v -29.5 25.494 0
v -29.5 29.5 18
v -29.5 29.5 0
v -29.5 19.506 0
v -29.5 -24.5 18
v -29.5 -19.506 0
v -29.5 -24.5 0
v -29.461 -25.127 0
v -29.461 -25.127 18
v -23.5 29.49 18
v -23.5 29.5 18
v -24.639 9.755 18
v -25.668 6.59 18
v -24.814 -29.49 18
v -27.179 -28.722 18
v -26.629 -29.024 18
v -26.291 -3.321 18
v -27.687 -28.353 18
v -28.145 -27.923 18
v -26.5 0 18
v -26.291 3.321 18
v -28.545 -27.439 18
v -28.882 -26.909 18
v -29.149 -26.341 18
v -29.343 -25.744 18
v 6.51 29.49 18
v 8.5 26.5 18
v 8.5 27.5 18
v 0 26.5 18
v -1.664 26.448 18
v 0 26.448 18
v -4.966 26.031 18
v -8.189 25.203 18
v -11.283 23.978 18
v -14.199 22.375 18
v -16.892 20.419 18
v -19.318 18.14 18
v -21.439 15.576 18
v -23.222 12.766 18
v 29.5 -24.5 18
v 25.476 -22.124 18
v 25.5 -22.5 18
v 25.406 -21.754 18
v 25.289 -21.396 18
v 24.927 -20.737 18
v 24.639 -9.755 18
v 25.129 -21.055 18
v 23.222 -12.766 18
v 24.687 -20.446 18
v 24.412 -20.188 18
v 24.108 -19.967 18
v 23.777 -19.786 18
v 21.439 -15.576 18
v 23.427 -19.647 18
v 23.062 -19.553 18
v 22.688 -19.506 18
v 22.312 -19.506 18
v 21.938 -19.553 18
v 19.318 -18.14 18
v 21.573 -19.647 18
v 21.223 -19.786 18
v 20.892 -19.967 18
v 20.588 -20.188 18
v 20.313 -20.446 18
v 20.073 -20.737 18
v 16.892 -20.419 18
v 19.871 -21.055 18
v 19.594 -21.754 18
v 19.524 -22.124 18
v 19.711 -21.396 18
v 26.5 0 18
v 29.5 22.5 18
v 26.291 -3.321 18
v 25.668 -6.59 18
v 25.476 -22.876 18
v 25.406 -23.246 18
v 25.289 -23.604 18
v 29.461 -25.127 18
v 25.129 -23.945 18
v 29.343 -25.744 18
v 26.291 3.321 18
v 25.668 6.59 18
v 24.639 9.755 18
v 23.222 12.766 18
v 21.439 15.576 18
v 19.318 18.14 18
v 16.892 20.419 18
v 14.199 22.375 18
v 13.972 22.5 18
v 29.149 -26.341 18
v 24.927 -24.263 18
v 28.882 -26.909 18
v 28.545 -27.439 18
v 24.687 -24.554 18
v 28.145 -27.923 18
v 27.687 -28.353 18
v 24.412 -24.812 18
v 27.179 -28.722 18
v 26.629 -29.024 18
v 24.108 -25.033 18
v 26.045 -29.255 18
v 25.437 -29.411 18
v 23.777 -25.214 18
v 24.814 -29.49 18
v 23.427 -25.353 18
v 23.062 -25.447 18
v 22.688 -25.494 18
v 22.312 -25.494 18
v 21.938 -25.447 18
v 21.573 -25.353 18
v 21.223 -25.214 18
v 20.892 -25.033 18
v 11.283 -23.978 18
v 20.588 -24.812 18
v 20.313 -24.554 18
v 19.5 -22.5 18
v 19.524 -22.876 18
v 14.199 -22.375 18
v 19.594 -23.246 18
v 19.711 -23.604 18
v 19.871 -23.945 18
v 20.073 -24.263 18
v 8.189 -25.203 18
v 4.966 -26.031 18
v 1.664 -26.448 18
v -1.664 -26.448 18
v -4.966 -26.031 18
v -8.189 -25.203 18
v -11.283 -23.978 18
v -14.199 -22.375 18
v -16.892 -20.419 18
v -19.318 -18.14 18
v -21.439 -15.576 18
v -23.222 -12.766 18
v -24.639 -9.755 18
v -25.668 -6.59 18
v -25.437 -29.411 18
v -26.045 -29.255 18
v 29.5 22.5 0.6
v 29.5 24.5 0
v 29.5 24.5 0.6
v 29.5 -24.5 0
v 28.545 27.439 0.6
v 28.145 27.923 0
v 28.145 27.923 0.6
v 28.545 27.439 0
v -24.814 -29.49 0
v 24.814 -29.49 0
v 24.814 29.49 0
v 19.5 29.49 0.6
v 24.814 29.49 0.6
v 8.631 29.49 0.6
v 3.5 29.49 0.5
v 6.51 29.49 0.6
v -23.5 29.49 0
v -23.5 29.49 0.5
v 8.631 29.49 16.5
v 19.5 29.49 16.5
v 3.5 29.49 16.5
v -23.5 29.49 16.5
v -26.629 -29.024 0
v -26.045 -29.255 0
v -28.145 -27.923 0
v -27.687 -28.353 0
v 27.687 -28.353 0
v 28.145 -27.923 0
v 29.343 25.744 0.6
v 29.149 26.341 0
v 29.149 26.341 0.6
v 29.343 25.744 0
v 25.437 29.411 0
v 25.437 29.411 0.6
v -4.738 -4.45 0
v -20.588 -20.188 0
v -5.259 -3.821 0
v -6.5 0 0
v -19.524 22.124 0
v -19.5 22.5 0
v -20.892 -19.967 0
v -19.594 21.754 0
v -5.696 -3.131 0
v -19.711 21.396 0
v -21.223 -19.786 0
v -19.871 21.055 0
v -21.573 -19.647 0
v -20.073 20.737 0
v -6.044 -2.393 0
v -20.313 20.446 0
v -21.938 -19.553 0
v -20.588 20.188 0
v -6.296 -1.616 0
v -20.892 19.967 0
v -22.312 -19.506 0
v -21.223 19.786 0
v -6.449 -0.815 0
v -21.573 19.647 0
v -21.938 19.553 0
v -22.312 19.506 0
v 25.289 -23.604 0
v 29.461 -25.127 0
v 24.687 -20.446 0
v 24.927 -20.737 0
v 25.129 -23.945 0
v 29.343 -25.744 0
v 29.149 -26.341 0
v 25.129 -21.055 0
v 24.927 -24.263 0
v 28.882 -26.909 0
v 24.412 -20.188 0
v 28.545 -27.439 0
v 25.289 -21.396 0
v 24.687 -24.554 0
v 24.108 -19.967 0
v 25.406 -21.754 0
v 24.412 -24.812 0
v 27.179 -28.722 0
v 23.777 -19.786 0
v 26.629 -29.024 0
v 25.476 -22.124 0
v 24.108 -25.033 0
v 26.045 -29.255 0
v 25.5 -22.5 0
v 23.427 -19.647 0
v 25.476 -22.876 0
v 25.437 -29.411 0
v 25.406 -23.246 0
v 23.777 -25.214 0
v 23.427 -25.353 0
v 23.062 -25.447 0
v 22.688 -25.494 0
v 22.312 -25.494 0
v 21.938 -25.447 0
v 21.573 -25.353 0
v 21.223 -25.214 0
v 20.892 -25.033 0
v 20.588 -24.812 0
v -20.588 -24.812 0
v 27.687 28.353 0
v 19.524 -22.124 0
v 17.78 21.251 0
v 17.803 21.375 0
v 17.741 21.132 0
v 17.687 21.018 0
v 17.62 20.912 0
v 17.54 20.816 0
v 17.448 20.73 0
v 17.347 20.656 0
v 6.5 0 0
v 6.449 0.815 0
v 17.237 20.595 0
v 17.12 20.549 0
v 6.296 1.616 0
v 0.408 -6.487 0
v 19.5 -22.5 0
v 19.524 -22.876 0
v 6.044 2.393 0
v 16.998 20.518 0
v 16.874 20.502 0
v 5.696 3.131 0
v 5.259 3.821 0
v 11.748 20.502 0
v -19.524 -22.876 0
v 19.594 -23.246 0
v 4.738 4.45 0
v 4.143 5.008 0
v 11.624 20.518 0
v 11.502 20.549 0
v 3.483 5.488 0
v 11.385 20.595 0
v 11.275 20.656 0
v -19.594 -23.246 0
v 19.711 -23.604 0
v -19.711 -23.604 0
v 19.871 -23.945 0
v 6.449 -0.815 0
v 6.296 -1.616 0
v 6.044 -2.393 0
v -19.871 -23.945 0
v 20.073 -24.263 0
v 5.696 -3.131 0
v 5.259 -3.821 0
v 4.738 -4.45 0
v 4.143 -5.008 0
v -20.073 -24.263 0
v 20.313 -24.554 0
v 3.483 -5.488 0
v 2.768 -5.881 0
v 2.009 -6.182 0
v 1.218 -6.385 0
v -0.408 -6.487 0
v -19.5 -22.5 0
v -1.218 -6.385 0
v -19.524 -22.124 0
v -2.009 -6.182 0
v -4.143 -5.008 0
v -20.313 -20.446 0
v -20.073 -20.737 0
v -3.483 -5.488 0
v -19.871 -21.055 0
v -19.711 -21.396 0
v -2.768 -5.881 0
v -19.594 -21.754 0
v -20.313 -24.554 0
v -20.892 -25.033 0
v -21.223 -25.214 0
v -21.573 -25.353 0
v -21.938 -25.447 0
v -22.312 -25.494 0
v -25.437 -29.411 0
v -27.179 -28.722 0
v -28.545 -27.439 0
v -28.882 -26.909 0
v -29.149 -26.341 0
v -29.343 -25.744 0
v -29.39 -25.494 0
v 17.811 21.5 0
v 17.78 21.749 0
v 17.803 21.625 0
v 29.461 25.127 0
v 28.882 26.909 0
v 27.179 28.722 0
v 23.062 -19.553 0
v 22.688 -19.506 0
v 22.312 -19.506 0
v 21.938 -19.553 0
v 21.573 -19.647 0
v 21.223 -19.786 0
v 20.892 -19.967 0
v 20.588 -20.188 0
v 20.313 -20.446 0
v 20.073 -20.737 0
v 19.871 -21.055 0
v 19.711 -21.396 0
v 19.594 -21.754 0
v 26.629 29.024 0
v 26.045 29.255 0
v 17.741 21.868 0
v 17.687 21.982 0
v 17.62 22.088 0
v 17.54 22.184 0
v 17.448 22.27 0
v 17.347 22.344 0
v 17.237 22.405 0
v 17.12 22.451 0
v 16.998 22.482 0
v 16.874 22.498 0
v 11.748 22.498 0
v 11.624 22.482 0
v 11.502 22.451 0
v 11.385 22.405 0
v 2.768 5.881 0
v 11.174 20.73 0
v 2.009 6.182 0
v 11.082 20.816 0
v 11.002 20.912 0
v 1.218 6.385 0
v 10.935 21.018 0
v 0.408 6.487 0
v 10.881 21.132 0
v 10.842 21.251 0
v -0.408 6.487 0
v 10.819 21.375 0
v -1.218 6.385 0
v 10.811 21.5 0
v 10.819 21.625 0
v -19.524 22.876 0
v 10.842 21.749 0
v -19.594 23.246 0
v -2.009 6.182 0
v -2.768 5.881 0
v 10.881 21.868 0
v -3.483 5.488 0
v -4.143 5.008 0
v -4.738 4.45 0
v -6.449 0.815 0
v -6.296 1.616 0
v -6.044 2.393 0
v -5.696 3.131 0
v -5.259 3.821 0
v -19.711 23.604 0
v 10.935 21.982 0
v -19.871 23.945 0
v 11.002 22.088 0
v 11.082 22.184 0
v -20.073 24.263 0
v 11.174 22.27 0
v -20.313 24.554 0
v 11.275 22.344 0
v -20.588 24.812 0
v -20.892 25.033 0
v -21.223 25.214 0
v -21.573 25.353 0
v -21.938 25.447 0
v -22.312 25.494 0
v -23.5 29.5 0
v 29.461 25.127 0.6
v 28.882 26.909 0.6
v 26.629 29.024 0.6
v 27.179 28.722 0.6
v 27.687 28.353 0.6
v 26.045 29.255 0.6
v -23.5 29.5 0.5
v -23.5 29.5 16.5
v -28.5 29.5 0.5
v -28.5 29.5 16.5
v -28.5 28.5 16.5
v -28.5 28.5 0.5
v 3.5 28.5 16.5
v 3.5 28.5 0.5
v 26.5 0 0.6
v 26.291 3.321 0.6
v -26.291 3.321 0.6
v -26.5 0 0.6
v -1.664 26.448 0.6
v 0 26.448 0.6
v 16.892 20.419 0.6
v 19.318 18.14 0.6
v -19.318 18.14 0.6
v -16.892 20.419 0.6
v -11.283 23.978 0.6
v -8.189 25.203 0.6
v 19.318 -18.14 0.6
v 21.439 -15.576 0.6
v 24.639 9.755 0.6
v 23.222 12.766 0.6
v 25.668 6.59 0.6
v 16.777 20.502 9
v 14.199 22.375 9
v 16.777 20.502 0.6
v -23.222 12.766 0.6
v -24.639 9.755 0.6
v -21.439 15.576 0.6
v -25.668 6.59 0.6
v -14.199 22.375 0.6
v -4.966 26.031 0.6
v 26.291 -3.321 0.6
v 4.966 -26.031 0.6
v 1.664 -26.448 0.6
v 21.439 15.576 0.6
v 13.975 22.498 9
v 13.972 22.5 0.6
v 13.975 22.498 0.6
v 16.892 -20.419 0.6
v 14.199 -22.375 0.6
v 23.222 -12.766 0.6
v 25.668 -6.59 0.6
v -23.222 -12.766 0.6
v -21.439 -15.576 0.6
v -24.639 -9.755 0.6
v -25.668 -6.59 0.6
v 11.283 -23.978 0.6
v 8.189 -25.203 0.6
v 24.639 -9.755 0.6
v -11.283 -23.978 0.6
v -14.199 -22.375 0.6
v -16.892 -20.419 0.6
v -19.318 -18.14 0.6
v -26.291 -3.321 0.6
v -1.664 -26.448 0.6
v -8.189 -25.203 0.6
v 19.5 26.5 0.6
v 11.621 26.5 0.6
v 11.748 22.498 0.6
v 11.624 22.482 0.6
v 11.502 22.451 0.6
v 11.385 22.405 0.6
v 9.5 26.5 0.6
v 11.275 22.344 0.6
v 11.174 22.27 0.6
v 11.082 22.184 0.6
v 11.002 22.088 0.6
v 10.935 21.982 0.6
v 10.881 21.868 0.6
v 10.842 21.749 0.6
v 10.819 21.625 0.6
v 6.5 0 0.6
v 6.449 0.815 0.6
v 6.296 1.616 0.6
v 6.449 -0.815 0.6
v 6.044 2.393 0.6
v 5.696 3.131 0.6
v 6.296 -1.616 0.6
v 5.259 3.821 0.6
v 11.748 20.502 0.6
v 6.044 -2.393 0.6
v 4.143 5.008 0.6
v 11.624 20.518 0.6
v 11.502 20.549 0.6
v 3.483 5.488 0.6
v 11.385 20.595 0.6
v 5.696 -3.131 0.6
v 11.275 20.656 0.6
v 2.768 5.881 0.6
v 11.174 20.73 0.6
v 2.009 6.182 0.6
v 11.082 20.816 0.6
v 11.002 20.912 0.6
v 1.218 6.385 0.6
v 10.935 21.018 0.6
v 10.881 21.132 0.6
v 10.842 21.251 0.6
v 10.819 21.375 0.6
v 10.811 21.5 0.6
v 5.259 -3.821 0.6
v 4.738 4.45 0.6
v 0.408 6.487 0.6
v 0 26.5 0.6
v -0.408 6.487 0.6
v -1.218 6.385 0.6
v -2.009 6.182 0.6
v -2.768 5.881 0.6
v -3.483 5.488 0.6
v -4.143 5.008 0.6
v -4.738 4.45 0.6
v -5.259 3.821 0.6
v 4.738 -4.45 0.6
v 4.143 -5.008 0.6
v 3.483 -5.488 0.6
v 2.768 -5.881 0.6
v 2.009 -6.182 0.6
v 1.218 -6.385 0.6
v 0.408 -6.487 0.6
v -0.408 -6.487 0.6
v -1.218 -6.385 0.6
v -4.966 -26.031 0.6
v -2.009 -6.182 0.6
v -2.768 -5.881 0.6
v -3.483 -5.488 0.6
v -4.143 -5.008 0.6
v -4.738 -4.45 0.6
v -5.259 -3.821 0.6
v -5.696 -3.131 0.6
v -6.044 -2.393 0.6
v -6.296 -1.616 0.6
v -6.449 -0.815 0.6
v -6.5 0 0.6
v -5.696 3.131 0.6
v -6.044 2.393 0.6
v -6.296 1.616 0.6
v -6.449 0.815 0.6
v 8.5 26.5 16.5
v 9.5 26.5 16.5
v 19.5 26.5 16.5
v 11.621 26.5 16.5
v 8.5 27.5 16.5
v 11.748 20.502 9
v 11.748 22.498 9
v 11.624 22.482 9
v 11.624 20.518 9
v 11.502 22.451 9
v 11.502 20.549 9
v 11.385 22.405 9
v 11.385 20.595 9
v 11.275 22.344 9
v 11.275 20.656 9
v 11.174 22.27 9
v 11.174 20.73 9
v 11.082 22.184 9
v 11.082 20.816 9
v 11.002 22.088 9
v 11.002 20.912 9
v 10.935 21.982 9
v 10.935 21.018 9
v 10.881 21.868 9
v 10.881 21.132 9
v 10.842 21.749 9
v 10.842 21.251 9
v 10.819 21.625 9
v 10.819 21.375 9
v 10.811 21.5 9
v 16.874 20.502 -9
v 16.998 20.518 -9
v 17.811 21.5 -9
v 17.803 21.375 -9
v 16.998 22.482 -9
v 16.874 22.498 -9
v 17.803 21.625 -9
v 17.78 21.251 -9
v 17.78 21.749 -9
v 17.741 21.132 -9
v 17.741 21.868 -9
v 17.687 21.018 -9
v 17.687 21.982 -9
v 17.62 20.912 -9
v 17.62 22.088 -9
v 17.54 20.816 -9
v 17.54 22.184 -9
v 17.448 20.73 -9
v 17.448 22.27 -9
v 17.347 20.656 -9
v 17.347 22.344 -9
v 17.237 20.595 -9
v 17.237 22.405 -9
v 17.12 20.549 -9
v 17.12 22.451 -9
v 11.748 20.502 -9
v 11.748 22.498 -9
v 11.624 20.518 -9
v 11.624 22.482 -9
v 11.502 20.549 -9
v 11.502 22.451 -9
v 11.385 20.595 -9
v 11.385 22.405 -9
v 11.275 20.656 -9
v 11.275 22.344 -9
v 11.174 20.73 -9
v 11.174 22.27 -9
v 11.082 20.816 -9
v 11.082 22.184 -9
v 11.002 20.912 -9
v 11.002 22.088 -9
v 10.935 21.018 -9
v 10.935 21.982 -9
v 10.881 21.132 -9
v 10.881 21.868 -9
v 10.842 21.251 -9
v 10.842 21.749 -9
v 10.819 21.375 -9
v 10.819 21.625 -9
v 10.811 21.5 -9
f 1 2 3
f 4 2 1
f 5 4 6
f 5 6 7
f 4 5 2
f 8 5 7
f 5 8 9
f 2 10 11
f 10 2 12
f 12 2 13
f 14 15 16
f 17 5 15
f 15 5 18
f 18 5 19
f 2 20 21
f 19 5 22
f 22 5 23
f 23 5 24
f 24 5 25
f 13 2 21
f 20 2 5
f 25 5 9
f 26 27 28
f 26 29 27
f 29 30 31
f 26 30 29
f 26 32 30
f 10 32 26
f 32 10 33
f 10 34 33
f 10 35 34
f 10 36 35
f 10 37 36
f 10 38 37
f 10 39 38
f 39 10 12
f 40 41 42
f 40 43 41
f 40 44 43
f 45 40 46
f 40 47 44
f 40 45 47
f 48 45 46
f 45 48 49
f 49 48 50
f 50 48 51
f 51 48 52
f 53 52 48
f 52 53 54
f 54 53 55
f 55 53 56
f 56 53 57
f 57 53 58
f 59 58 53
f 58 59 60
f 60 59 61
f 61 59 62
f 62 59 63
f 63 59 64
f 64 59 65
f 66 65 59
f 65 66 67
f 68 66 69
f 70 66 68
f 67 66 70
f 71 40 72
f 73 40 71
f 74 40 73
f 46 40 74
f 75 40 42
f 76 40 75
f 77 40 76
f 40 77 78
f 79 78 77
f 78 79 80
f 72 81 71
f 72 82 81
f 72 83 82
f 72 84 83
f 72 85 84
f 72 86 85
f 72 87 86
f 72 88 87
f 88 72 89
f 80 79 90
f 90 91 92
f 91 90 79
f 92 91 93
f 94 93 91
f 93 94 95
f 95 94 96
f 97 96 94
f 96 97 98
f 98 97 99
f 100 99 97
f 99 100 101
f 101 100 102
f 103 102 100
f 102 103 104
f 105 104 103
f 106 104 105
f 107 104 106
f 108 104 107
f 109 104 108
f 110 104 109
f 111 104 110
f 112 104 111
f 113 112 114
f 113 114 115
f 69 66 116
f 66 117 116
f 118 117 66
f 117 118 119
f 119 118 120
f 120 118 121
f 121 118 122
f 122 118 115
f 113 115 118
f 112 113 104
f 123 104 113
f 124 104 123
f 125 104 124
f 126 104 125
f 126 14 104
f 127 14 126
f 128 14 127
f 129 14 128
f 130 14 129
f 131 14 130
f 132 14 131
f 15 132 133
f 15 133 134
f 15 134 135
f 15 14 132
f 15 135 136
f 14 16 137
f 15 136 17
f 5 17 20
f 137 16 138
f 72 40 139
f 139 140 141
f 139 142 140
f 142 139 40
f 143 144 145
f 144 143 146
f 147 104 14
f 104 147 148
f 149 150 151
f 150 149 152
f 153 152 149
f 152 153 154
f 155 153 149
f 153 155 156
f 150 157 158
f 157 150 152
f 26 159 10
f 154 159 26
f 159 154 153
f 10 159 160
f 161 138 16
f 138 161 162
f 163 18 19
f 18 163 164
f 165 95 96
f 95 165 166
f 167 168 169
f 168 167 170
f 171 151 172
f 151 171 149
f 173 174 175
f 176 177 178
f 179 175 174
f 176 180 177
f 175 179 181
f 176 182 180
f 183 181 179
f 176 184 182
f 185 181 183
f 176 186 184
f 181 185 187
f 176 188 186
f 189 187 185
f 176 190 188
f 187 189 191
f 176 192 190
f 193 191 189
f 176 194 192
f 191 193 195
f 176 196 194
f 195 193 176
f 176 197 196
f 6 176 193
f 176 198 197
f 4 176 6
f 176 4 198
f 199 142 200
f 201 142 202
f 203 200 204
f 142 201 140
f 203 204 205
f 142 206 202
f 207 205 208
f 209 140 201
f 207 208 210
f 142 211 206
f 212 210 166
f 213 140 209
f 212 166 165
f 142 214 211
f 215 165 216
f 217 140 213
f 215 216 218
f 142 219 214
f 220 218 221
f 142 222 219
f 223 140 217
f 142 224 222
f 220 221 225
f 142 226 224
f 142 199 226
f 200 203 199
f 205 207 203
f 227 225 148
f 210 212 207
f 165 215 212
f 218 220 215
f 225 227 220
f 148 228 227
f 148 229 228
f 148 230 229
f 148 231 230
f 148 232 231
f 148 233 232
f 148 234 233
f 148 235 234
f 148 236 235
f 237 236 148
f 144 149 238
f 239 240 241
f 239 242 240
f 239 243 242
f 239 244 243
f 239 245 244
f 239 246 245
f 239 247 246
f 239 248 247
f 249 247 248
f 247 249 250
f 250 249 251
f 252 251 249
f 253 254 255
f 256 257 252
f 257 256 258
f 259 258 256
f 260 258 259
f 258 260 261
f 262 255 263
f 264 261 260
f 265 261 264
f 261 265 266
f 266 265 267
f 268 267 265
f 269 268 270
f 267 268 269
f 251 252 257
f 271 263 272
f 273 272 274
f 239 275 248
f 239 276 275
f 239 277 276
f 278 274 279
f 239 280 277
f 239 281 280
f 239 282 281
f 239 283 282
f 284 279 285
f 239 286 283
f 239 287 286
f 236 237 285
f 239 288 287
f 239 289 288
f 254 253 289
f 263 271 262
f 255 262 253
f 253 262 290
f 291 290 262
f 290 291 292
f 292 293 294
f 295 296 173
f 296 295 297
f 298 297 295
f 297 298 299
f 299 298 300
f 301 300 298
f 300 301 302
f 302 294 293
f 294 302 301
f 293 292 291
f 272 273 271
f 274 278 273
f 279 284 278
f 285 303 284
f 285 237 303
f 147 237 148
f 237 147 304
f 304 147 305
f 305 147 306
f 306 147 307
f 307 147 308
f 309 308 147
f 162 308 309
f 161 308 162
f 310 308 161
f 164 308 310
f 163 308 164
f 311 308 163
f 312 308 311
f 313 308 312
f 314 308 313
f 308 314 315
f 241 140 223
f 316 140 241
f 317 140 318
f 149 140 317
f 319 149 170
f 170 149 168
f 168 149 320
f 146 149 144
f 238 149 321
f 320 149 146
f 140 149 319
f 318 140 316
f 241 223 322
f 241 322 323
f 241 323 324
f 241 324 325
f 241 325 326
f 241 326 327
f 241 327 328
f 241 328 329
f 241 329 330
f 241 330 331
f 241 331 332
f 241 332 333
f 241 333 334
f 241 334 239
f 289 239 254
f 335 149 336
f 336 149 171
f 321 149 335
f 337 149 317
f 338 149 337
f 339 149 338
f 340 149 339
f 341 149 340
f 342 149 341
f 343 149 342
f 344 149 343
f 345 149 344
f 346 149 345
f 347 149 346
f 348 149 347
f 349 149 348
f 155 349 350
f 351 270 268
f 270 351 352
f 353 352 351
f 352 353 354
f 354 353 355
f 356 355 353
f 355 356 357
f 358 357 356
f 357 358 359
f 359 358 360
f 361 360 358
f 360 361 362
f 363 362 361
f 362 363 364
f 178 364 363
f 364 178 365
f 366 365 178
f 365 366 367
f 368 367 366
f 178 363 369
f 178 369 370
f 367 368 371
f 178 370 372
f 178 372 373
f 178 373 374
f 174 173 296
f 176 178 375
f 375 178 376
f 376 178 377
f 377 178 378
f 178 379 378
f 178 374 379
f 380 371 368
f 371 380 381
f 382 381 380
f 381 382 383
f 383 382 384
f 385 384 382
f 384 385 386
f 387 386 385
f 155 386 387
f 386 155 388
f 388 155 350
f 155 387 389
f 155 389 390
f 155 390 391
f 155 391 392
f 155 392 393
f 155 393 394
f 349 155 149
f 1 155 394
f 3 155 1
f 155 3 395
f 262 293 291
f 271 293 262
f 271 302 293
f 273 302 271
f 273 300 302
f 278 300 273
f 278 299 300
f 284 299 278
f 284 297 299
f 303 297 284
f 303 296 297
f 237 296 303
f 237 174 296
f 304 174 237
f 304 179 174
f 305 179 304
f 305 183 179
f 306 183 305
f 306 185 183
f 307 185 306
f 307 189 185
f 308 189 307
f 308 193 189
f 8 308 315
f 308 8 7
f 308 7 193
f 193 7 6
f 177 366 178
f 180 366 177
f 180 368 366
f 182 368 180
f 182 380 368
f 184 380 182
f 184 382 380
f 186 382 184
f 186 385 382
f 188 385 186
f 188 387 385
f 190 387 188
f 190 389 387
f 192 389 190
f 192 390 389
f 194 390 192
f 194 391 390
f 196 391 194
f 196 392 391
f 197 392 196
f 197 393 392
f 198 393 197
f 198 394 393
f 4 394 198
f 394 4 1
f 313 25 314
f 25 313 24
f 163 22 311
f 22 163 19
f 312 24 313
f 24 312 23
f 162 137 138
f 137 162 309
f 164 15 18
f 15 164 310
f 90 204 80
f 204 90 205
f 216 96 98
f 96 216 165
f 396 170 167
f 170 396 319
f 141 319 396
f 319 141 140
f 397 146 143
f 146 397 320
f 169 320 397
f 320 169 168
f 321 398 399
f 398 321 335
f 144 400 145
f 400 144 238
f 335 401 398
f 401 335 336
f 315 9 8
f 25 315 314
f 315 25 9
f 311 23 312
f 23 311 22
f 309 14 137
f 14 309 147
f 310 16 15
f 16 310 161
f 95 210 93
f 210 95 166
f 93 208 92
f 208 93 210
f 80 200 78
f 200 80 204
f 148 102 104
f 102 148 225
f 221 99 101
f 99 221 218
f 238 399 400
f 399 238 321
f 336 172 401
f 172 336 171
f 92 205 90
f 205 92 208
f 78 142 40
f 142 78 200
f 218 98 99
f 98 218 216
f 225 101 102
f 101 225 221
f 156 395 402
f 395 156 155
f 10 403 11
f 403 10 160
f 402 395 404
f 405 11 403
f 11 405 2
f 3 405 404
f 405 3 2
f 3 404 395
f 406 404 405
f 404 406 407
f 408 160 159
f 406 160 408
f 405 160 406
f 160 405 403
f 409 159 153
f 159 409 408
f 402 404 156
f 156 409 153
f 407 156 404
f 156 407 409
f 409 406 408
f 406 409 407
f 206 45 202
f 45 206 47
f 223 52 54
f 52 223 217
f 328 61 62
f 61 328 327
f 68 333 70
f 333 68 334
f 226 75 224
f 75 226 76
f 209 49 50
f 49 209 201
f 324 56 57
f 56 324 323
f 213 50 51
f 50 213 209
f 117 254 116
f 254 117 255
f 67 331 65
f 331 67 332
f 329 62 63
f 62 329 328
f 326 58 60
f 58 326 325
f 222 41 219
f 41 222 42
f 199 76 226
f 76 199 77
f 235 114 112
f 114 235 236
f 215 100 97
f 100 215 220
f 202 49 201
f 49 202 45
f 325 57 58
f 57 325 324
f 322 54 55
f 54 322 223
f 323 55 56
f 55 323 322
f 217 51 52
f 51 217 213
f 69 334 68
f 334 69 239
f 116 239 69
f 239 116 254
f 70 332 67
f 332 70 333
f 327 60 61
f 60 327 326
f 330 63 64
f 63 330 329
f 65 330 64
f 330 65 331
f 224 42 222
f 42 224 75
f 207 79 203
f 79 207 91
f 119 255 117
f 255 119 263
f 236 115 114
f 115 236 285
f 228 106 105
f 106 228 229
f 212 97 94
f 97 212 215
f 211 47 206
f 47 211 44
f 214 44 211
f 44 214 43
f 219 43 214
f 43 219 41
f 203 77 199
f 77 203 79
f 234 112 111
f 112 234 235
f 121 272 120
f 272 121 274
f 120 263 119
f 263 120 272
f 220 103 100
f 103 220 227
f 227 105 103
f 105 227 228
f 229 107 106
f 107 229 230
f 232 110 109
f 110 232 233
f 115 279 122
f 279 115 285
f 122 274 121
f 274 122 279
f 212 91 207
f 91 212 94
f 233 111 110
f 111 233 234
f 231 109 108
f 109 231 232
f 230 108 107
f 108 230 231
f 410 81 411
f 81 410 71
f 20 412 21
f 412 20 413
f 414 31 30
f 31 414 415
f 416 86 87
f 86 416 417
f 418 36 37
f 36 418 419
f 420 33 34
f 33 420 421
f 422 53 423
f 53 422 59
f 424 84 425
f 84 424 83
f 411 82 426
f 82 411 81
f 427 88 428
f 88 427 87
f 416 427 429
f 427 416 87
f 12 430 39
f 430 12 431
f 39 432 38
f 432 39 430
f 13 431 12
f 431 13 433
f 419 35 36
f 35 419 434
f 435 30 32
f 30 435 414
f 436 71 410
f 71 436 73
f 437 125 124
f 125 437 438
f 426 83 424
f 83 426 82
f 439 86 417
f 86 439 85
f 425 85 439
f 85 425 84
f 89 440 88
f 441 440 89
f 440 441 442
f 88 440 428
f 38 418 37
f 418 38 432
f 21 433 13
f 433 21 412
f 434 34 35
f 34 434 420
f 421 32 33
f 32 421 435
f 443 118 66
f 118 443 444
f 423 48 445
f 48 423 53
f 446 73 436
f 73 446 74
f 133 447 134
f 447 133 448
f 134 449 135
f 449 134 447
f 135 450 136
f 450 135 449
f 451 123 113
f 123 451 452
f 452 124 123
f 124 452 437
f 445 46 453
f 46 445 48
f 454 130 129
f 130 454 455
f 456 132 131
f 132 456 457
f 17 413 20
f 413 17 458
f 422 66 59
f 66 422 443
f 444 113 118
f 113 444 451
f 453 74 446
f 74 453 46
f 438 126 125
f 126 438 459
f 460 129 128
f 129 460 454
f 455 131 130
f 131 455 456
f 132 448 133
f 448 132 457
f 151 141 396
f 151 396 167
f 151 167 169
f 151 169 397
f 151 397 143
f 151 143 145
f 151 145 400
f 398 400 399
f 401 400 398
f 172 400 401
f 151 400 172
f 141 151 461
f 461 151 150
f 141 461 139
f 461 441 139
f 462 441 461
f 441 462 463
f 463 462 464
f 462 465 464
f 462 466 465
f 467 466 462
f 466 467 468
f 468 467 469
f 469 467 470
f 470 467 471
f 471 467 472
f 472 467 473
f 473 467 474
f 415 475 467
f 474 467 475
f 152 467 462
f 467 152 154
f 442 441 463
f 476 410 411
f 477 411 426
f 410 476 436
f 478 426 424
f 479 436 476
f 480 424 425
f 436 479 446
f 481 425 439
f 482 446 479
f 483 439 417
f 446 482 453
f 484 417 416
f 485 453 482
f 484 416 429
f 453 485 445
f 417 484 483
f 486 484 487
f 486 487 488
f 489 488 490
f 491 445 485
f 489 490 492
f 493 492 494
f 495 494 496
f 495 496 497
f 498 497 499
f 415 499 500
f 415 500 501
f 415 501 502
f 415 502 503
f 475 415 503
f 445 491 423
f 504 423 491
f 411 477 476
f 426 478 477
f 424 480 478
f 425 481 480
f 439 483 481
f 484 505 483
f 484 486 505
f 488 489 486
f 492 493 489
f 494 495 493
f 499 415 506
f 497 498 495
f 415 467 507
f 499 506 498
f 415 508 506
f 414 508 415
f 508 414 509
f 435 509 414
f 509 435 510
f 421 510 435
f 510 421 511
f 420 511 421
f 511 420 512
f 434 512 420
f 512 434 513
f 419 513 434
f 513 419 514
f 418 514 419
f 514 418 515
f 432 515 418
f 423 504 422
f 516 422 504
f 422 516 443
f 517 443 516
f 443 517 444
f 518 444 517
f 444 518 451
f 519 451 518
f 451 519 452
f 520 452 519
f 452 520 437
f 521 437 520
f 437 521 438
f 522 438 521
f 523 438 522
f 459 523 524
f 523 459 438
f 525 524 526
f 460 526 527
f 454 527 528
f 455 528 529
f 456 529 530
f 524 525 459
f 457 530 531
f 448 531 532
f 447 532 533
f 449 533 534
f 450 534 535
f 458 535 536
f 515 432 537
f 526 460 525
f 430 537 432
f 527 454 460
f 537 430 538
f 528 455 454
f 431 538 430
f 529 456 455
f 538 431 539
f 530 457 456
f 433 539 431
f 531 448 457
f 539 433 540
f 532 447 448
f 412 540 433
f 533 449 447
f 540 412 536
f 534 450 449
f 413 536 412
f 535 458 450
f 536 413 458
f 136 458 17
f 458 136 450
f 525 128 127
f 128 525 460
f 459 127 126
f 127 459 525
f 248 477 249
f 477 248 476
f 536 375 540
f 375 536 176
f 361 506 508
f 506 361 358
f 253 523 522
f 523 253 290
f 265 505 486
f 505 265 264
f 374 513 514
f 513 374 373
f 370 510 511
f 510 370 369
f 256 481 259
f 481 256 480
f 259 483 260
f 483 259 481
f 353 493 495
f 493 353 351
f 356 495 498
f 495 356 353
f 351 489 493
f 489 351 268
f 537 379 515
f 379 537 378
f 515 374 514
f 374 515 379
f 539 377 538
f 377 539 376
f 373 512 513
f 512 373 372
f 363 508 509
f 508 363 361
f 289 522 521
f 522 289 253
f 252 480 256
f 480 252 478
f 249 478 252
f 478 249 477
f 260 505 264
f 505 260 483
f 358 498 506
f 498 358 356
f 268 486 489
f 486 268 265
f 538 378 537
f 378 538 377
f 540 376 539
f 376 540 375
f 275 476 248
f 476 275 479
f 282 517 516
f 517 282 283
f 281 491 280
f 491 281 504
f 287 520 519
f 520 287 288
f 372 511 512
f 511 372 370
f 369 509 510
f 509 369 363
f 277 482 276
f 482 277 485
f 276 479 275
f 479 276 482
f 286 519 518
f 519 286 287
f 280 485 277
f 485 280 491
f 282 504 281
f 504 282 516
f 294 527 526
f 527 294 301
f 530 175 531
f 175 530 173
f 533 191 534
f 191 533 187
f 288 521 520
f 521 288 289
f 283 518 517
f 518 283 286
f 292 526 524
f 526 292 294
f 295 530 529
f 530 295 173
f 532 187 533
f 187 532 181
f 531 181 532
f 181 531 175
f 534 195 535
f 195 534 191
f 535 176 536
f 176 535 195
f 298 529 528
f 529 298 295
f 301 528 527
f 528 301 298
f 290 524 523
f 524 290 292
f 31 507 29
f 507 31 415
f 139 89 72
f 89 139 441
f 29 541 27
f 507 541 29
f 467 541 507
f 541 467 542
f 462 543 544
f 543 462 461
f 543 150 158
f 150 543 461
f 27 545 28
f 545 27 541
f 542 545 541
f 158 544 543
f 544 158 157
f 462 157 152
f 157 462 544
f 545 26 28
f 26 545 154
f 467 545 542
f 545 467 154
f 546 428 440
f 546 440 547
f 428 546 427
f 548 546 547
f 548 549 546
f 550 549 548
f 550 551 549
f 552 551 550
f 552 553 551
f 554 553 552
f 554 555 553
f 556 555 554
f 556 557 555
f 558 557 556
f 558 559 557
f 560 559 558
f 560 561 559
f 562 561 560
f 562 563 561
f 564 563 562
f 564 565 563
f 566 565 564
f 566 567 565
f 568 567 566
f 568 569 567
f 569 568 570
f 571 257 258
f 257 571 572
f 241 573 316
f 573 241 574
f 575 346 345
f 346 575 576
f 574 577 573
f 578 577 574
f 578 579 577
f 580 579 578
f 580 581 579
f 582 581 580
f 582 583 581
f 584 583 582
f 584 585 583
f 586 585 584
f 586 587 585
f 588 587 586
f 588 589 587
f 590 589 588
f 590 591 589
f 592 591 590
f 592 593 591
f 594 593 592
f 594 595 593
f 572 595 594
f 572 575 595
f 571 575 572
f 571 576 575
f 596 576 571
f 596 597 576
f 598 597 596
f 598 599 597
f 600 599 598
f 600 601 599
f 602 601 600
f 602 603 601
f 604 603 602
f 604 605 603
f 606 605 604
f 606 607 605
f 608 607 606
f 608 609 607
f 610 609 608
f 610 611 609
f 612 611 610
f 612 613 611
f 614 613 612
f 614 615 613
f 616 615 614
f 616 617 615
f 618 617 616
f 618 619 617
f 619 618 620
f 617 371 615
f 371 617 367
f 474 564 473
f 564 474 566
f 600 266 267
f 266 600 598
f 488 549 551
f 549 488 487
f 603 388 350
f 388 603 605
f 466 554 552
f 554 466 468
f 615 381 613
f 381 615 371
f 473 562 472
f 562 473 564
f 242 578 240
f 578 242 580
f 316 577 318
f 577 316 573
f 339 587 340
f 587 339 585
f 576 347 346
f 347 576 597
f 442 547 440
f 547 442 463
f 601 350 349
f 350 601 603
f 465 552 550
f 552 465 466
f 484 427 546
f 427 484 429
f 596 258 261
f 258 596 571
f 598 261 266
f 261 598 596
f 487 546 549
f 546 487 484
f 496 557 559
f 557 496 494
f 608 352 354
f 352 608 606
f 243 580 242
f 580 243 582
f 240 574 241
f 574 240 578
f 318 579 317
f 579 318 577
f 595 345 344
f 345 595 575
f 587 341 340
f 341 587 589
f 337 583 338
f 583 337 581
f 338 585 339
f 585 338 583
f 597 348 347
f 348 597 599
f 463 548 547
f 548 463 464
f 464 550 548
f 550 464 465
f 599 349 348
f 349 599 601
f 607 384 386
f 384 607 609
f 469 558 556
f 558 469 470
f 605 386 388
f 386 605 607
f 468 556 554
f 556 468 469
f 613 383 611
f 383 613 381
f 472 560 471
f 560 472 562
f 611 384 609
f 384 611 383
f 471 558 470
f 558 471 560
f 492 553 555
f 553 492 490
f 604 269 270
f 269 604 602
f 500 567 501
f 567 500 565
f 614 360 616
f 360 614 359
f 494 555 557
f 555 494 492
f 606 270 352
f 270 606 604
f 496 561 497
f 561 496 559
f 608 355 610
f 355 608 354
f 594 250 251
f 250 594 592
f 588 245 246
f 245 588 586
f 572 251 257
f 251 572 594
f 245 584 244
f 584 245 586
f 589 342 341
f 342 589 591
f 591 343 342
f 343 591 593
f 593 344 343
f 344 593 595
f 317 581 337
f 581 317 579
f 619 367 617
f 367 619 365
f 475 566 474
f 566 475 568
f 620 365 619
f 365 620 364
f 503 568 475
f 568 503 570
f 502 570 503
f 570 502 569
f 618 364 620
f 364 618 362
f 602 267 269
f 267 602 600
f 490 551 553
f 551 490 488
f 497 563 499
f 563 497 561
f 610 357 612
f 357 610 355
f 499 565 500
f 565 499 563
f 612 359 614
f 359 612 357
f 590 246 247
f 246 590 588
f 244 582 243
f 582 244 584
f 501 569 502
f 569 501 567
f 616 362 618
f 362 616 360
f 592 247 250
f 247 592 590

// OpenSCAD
$fn = 50;


union() {
	difference() {
		union() {
			hull() {
				translate(v = [-24.5000000000, 24.5000000000, 0]) {
					cylinder(h = 18, r = 5);
				}
				translate(v = [24.5000000000, 24.5000000000, 0]) {
					cylinder(h = 18, r = 5);
				}
				translate(v = [-24.5000000000, -24.5000000000, 0]) {
					cylinder(h = 18, r = 5);
				}
				translate(v = [24.5000000000, -24.5000000000, 0]) {
					cylinder(h = 18, r = 5);
				}
			}
			translate(v = [-29.5000000000, 23.5000000000, 0]) {
				cube(size = [6, 6, 18]);
			}
		}
		union() {
			translate(v = [-30.0000000000, -22.5000000000, -250.0000000000]) {
				rotate(a = [0, 0, 0]) {
					difference() {
						union() {
							hull() {
								translate(v = [7.5000000000, 0, 0]) {
									cylinder(h = 250, r = 3.0000000000, r1 = 3.0000000000, r2 = 3.0000000000);
								}
								translate(v = [-7.5000000000, 0, 0]) {
									cylinder(h = 250, r = 3.0000000000, r1 = 3.0000000000, r2 = 3.0000000000);
								}
							}
						}
						union();
					}
				}
			}
			translate(v = [-30.0000000000, 22.5000000000, -250.0000000000]) {
				rotate(a = [0, 0, 0]) {
					difference() {
						union() {
							hull() {
								translate(v = [7.5000000000, 0, 0]) {
									cylinder(h = 250, r = 3.0000000000, r1 = 3.0000000000, r2 = 3.0000000000);
								}
								translate(v = [-7.5000000000, 0, 0]) {
									cylinder(h = 250, r = 3.0000000000, r1 = 3.0000000000, r2 = 3.0000000000);
								}
							}
						}
						union();
					}
				}
			}
			translate(v = [-28.5000000000, 28.5000000000, 0.5000000000]) {
				cube(size = [32, 1, 16]);
			}
			translate(v = [22.5000000000, -22.5000000000, 0]) {
				cylinder(h = 100, r = 3.0000000000);
			}
			translate(v = [0, 0, 0.6000000000]) {
				cylinder(h = 20.4000000000, r = 26.5000000000);
			}
			translate(v = [0, 0, -9.0000000000]) {
				cylinder(h = 18, r = 6.5000000000);
			}
			translate(v = [0.0000000000, 22.5000000000, 0.6000000000]) {
				cube(size = [29.5000000000, 4, 20.4000000000]);
			}
			translate(v = [19.5000000000, 22.5000000000, 0.6000000000]) {
				cube(size = [10, 7, 20.4000000000]);
			}
			translate(v = [8.5000000000, 22.5000000000, 16.5000000000]) {
				cube(size = [21, 7, 1.5000000000]);
			}
			translate(v = [5.7500000000, 30.2500000000, 0.6000000000]) {
				rotate(a = [0, 0, -45]) {
					cube(size = [7.5000000000, 1.5000000000, 20.4000000000]);
				}
			}
			translate(v = [5.0610000000, 20.5000000000, 0.6000000000]) {
				cube(size = [7.5000000000, 2, 17.4000000000]);
			}
		}
	}
	union() {
		translate(v = [14.3110000000, 21.5000000000, -9.0000000000]) {
			rotate(a = [0, 0, 0]) {
				difference() {
					union() {
						#hull() {
							#translate(v = [2.5000000000, 0, 0]) {
								cylinder(h = 18, r = 1.0000000000, r1 = 1.0000000000, r2 = 1.0000000000);
							}
							#translate(v = [-2.5000000000, 0, 0]) {
								cylinder(h = 18, r = 1.0000000000, r1 = 1.0000000000, r2 = 1.0000000000);
							}
						}
					}
					union();
				}
			}
		}
	}
}
